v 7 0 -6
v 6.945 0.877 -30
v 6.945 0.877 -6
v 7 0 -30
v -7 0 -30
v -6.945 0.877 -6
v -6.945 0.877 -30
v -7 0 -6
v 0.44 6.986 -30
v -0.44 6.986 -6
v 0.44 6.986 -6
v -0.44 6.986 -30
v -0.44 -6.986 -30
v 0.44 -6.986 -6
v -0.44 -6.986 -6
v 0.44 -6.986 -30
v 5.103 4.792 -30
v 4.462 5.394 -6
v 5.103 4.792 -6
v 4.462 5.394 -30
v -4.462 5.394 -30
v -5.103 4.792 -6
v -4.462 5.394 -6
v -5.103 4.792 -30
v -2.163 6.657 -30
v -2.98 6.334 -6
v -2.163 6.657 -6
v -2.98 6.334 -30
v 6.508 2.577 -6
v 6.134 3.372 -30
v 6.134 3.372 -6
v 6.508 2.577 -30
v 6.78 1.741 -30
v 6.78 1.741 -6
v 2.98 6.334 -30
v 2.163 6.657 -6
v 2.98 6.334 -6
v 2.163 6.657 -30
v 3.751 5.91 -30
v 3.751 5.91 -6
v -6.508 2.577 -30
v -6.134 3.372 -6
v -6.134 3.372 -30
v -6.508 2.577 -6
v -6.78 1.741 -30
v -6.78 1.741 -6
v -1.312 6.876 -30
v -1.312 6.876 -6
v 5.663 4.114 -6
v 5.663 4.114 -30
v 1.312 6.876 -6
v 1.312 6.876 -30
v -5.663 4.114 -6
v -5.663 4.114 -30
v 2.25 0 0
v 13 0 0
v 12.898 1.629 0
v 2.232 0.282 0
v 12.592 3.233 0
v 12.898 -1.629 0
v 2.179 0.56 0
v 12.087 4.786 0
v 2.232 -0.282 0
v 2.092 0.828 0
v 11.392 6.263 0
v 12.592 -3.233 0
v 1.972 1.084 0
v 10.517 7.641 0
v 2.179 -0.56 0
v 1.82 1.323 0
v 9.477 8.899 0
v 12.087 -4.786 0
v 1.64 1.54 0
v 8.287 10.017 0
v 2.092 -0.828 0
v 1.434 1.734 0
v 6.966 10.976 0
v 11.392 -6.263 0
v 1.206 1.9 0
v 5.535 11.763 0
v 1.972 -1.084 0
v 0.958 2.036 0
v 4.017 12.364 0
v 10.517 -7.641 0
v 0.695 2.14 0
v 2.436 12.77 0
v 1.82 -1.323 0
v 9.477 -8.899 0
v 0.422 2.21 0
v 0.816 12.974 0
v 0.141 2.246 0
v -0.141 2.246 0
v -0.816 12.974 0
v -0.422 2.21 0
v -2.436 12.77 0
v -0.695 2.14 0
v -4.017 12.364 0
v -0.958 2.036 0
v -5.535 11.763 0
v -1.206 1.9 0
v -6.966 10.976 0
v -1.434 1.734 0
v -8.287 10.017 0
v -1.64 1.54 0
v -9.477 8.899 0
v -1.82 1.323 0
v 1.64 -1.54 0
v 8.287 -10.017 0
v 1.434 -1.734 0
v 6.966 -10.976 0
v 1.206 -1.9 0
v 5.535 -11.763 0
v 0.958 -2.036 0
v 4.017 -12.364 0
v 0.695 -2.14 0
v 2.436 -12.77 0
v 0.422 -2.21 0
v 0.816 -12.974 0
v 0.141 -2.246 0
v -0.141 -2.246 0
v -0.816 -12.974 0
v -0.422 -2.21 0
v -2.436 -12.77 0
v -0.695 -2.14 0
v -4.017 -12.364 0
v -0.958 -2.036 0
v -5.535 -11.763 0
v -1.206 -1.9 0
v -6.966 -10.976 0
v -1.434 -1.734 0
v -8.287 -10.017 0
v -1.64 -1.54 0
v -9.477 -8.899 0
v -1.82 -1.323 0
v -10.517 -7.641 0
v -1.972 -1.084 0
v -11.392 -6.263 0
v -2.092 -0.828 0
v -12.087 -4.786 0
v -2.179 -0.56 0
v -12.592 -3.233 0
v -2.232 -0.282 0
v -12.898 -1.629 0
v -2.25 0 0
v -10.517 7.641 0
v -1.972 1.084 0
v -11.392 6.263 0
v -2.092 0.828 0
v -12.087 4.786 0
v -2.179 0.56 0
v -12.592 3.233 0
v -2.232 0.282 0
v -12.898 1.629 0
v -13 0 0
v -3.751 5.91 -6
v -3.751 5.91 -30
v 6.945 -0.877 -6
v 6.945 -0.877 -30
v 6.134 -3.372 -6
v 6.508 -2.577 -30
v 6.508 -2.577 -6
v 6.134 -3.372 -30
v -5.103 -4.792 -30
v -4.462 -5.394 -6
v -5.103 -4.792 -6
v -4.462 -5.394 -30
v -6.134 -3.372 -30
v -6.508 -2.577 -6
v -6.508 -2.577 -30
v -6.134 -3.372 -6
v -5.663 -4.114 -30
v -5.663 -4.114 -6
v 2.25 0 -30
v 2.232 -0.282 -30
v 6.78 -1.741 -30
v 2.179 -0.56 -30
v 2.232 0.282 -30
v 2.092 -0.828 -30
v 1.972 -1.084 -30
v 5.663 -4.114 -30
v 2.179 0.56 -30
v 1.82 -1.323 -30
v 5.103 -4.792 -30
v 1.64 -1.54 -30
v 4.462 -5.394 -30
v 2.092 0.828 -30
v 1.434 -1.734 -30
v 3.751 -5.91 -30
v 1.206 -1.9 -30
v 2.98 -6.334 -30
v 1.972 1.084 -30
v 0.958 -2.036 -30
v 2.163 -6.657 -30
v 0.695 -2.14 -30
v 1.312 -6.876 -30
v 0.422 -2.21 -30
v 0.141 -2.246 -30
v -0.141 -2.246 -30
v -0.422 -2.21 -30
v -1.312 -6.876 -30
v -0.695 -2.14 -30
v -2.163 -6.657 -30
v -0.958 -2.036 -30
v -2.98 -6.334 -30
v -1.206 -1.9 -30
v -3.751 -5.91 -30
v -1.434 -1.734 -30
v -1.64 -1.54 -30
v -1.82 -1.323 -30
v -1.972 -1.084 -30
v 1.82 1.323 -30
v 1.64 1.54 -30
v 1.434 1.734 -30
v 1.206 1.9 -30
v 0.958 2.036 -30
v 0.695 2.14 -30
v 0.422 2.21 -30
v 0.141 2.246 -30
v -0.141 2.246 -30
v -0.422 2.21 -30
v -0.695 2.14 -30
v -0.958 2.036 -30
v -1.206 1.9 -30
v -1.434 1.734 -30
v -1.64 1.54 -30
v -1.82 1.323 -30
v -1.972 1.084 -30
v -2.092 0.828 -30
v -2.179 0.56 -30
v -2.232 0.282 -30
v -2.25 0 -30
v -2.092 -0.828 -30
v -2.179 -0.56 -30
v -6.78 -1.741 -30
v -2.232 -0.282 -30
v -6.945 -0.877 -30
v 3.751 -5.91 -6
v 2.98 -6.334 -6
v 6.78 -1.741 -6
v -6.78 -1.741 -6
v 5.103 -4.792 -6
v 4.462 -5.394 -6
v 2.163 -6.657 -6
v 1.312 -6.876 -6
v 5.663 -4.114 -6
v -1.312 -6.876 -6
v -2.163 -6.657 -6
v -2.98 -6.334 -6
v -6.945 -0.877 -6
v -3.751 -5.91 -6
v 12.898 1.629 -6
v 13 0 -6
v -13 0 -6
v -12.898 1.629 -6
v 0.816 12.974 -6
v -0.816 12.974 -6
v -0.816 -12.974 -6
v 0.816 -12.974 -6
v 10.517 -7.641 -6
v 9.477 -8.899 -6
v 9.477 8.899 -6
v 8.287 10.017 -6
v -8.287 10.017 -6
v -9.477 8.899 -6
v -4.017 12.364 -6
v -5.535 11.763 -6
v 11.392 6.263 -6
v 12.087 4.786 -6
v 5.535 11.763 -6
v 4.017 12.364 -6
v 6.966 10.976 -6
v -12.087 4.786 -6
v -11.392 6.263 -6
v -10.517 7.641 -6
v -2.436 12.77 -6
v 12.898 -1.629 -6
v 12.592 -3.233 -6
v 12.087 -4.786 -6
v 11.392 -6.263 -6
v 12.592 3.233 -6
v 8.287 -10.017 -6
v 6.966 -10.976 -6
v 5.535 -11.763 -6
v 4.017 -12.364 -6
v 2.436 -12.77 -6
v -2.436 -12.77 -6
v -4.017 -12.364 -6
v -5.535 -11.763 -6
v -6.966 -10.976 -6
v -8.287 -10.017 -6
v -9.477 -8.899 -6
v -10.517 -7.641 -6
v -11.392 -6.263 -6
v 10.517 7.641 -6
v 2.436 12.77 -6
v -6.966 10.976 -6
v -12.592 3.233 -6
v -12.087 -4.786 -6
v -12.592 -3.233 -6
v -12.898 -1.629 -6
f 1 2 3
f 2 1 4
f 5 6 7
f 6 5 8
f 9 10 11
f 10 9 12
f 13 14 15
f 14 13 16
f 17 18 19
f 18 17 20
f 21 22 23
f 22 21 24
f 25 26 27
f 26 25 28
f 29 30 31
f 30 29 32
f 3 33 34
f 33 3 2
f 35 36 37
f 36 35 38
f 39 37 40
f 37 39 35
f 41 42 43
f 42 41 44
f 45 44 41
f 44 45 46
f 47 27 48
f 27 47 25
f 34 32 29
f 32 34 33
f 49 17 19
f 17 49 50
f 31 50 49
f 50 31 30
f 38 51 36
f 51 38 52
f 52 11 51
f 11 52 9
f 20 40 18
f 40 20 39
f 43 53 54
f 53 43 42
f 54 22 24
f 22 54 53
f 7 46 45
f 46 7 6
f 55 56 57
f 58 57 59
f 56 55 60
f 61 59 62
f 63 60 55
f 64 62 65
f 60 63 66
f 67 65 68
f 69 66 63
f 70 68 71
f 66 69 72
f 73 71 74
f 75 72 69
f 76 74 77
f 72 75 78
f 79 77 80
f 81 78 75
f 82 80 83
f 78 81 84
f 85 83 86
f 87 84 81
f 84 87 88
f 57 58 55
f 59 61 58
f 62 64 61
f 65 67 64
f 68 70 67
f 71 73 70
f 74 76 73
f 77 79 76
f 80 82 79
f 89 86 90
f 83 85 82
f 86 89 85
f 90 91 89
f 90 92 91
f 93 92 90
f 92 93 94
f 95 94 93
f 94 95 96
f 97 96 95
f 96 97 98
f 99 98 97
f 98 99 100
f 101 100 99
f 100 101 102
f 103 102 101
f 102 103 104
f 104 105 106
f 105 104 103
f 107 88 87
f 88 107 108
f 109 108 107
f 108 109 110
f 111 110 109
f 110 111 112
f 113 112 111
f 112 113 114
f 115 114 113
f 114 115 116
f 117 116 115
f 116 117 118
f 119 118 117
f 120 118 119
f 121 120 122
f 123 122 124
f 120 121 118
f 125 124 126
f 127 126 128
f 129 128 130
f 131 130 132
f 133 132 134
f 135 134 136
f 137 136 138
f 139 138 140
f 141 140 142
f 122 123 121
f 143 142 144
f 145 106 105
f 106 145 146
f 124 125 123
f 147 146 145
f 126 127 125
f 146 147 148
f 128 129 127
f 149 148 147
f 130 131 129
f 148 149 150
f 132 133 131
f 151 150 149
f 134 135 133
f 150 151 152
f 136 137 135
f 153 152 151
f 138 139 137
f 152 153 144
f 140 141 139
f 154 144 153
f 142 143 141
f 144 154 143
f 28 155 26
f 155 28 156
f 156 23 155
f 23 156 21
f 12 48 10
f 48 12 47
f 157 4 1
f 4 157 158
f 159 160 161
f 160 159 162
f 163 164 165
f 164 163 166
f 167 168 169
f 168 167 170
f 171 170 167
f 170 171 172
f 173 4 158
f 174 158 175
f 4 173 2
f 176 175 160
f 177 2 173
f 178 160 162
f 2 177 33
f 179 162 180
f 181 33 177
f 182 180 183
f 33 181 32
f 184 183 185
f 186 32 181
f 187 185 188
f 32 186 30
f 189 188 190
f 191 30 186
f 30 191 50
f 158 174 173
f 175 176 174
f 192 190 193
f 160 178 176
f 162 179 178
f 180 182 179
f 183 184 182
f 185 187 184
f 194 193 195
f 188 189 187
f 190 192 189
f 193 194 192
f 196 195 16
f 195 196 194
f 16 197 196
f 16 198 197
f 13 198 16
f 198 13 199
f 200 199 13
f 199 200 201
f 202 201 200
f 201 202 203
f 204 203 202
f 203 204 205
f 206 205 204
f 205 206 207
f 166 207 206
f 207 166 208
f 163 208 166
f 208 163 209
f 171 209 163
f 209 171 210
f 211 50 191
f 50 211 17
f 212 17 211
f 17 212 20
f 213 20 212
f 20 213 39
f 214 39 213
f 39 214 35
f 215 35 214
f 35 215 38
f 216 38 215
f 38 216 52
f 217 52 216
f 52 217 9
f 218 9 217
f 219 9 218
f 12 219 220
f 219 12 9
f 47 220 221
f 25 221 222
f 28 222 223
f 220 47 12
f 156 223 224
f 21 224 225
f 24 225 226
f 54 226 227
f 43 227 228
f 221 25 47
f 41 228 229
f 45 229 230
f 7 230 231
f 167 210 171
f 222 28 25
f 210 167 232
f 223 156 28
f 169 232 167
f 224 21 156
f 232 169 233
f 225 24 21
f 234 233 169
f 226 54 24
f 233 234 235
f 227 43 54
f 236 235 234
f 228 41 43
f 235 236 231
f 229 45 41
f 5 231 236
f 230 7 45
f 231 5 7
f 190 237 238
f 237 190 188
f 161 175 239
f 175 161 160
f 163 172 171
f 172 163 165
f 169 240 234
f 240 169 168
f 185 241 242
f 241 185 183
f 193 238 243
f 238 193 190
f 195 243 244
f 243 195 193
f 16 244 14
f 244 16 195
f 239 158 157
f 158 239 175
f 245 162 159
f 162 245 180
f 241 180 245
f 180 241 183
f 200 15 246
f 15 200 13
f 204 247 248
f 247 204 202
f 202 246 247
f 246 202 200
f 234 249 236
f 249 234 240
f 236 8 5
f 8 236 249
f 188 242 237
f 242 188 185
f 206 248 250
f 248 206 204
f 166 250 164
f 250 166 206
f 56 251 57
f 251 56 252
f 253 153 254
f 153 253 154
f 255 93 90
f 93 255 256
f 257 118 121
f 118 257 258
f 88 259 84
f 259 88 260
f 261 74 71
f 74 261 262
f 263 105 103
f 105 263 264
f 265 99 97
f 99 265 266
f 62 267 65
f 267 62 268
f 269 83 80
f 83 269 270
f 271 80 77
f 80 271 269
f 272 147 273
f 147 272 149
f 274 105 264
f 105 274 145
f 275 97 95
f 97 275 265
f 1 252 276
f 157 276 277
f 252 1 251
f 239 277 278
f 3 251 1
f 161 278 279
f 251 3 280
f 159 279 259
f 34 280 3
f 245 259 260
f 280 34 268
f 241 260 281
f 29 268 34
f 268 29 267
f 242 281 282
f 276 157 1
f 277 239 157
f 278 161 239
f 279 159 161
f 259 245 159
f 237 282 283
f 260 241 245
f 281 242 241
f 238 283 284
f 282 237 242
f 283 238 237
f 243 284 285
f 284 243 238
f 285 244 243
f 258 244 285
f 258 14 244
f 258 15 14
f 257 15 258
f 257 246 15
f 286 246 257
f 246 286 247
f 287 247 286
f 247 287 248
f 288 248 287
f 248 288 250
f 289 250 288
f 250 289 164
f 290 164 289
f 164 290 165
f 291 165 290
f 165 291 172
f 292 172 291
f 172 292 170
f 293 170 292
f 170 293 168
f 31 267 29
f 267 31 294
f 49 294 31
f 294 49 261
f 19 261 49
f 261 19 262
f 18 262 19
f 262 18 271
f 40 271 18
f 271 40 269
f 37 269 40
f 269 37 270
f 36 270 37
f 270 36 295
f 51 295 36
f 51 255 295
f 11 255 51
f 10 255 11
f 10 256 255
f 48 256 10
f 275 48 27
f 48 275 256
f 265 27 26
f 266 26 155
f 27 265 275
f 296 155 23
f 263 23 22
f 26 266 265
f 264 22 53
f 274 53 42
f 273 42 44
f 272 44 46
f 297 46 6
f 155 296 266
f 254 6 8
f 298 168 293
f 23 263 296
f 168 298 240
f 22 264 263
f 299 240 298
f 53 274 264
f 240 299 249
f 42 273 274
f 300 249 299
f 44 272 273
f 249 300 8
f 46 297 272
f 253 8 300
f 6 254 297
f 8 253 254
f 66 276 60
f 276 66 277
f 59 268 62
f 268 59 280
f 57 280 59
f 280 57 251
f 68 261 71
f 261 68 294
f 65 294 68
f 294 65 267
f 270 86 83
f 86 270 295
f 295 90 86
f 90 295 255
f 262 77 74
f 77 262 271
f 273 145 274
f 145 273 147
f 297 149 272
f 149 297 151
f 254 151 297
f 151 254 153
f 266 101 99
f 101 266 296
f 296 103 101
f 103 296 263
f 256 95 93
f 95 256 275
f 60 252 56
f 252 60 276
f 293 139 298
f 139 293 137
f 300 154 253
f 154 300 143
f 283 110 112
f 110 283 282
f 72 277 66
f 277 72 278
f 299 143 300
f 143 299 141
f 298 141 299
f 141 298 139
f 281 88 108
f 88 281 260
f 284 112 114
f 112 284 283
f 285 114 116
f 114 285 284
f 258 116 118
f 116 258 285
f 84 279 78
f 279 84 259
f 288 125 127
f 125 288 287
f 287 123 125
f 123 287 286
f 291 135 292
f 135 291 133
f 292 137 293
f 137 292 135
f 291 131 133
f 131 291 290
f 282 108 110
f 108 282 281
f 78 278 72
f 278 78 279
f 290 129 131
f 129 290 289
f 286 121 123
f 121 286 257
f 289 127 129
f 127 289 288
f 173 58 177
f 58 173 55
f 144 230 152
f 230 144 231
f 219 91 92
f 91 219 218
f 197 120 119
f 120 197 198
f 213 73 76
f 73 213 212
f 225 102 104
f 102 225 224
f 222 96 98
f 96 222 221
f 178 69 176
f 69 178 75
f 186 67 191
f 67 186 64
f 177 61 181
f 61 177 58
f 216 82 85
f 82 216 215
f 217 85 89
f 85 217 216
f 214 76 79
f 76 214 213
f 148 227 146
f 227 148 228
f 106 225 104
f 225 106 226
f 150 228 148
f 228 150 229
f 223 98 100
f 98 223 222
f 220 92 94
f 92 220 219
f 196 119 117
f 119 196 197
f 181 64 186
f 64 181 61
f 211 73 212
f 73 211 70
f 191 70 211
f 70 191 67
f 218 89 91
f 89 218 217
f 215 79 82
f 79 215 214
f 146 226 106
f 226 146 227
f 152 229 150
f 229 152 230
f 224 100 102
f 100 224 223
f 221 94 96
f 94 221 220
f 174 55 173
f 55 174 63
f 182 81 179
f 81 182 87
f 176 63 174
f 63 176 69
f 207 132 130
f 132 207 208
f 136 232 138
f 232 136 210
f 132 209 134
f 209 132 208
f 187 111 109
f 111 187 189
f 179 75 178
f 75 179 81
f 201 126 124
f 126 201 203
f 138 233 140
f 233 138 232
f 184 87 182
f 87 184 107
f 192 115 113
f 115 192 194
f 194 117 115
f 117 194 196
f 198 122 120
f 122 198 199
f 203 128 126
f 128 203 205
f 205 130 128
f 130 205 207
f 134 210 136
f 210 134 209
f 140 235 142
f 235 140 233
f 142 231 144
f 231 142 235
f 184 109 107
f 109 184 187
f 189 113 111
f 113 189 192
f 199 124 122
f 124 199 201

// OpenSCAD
$fn = 50;


difference() {
	union() {
		translate(v = [0, 0, -30.0000000000]) {
			cylinder(h = 30, r = 7.0000000000);
		}
		translate(v = [0, 0, -6.0000000000]) {
			cylinder(h = 6, r = 13.0000000000);
		}
	}
	union() {
		#translate(v = [0, 0, -30]) {
			cylinder(h = 30, r = 2.2500000000);
		}
	}
}
